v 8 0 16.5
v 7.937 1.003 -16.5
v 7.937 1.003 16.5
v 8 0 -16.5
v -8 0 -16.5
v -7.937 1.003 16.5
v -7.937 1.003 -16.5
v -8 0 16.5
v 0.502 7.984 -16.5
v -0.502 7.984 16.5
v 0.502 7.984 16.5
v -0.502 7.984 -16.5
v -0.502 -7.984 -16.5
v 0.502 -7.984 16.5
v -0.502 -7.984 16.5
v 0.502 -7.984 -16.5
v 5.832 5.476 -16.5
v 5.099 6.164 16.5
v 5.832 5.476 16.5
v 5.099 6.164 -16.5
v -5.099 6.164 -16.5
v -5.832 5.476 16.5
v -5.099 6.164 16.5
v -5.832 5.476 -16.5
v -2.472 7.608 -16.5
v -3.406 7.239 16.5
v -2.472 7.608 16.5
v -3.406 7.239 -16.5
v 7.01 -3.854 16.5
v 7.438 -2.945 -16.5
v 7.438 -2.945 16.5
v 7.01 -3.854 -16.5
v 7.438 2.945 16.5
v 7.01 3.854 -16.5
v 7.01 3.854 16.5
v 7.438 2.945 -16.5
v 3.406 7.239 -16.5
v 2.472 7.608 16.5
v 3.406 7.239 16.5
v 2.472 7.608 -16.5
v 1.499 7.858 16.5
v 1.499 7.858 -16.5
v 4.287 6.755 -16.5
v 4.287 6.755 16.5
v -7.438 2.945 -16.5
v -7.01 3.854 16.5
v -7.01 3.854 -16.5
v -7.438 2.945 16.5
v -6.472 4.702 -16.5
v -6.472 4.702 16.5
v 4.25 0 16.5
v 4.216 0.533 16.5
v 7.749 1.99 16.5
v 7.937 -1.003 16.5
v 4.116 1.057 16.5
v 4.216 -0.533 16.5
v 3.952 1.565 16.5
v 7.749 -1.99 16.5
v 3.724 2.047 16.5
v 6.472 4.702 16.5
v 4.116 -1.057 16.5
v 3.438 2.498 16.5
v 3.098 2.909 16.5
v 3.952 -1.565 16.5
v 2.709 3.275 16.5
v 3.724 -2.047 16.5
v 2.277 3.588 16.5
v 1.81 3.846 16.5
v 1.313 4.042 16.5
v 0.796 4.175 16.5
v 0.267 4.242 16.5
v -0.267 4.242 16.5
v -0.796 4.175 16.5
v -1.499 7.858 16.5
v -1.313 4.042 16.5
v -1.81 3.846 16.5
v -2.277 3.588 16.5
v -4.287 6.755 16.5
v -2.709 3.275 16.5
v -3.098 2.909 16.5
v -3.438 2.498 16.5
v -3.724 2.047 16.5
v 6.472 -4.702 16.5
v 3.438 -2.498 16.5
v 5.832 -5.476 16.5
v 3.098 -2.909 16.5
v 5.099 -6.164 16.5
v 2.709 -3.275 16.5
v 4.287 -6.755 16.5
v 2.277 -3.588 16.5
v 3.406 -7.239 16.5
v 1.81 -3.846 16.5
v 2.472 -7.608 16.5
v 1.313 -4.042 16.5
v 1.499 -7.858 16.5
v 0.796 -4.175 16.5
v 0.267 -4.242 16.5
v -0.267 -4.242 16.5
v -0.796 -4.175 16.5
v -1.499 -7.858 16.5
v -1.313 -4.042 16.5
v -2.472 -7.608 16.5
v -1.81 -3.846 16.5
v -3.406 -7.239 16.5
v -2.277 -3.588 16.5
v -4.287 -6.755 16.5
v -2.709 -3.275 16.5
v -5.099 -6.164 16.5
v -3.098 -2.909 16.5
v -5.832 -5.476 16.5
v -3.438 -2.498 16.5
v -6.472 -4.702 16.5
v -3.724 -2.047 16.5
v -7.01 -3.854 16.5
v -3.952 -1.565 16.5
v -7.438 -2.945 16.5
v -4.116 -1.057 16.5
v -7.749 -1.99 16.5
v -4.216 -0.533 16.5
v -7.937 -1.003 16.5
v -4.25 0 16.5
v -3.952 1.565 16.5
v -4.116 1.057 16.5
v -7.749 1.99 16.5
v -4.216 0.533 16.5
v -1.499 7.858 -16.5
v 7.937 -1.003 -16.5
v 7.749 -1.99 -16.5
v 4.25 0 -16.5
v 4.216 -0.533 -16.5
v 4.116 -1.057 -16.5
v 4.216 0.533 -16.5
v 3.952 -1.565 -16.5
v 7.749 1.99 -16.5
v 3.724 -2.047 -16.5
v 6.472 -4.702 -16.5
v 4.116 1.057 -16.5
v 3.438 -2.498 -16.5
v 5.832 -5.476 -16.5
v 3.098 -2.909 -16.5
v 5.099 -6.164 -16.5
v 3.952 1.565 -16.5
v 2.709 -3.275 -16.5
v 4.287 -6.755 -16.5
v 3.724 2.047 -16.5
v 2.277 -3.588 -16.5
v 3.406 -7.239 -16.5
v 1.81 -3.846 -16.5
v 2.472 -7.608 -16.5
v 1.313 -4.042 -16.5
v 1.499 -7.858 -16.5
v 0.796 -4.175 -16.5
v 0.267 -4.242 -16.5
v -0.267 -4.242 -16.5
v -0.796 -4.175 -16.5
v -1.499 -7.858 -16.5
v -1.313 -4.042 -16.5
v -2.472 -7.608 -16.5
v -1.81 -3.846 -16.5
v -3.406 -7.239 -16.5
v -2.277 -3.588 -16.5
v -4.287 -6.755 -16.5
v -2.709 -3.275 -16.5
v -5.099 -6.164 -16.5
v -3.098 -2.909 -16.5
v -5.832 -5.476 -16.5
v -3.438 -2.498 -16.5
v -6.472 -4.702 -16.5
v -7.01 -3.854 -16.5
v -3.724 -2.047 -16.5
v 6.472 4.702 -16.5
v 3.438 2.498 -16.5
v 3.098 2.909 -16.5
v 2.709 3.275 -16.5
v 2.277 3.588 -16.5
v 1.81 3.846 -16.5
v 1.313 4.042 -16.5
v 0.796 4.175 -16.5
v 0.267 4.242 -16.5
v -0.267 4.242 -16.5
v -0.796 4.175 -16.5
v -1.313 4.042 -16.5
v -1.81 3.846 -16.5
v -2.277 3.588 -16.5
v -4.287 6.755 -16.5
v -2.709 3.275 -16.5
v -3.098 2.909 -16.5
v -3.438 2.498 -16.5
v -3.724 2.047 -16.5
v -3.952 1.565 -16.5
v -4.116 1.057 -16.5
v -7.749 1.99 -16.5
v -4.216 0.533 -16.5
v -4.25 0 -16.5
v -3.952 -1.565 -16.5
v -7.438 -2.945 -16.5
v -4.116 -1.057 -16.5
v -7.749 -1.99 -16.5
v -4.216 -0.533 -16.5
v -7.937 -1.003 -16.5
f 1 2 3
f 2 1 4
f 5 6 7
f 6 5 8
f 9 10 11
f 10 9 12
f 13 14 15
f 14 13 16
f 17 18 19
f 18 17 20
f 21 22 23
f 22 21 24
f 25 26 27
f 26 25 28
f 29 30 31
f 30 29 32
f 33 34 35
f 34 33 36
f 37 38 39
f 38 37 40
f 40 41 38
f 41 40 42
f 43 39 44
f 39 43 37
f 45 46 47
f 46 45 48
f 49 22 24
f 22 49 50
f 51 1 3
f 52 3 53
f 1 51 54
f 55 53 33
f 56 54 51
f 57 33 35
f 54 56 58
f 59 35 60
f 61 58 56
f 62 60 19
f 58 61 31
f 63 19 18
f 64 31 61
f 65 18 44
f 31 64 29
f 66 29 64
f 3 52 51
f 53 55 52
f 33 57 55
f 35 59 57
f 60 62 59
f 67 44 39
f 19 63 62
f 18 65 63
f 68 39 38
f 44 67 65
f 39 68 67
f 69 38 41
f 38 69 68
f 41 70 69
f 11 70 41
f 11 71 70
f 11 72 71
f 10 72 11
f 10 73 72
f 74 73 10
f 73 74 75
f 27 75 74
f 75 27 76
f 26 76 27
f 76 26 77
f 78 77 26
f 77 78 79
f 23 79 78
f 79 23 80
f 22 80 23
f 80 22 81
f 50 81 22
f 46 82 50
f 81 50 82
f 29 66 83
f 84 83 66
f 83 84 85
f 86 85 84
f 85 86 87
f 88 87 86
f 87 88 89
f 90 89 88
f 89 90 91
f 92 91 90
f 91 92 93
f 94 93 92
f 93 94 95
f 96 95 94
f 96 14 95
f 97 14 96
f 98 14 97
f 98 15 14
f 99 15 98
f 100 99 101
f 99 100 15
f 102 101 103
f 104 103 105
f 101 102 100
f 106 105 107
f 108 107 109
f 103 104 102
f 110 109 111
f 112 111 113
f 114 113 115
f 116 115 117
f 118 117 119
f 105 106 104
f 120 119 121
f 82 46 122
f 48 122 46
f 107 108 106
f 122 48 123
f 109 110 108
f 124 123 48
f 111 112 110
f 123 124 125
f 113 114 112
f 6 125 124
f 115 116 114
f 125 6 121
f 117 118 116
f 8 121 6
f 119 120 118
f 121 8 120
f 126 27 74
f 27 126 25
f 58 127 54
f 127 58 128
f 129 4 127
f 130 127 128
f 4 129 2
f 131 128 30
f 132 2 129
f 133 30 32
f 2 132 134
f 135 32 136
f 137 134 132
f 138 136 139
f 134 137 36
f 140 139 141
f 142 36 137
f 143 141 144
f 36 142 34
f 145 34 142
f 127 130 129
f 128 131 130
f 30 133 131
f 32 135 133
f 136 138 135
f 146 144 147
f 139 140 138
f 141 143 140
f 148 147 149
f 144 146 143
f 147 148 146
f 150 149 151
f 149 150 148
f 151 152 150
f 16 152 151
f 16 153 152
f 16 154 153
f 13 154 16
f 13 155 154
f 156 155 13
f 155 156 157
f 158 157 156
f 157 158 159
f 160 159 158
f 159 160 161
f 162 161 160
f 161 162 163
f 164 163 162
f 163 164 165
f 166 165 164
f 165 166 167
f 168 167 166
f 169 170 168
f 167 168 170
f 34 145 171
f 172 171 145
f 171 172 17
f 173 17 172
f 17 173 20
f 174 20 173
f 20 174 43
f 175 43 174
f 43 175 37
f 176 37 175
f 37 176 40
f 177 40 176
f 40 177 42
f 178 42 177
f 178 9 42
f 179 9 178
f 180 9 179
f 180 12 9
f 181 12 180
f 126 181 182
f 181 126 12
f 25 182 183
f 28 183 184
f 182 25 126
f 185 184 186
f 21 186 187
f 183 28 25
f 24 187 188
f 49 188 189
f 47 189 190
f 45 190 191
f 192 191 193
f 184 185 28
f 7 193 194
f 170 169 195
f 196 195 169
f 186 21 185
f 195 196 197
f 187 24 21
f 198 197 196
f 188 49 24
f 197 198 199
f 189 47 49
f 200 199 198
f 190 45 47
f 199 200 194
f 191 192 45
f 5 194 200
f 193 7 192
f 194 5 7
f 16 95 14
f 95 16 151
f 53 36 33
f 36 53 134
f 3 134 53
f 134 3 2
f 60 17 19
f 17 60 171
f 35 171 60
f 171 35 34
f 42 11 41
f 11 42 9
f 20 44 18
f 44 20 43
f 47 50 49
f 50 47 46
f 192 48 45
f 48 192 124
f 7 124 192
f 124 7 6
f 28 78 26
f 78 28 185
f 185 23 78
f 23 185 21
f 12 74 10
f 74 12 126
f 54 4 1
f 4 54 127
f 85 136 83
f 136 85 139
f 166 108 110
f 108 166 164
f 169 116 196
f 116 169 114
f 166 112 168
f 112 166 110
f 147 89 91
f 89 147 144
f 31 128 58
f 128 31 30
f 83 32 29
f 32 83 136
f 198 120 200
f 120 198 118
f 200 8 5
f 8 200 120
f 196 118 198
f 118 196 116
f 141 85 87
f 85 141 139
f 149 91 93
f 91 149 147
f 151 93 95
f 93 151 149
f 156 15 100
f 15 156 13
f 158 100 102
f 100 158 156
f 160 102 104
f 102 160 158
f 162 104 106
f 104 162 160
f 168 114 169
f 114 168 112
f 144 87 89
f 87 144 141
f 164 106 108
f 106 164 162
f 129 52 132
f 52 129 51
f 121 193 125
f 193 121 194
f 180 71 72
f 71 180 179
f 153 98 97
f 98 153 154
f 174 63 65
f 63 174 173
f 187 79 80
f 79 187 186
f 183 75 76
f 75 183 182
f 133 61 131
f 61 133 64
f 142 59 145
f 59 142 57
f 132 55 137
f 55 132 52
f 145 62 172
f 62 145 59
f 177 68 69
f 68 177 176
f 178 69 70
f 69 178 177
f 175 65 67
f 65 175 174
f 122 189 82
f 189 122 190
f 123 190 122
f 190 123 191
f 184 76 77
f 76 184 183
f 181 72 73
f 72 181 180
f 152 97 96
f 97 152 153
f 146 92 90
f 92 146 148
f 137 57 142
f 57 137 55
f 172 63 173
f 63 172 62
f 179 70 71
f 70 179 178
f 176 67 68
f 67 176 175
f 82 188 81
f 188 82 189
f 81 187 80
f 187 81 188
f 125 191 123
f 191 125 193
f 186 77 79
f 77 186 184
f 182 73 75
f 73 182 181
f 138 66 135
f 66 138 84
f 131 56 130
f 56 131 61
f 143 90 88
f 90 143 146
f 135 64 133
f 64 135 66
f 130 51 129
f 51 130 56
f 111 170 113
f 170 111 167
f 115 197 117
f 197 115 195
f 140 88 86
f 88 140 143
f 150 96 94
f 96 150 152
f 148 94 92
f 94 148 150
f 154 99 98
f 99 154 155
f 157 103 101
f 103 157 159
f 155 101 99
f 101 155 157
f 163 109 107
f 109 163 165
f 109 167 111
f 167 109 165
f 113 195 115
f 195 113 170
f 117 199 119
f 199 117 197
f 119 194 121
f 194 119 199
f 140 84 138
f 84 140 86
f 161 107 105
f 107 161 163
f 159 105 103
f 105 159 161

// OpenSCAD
$fn = 50;


difference() {
	union() {
		translate(v = [0, 0, -16.5000000000]) {
			cylinder(h = 33, r = 8.0000000000);
		}
	}
	union() {
		translate(v = [0, 0, -100.0000000000]) {
			cylinder(h = 200, r = 4.2500000000);
		}
	}
}
